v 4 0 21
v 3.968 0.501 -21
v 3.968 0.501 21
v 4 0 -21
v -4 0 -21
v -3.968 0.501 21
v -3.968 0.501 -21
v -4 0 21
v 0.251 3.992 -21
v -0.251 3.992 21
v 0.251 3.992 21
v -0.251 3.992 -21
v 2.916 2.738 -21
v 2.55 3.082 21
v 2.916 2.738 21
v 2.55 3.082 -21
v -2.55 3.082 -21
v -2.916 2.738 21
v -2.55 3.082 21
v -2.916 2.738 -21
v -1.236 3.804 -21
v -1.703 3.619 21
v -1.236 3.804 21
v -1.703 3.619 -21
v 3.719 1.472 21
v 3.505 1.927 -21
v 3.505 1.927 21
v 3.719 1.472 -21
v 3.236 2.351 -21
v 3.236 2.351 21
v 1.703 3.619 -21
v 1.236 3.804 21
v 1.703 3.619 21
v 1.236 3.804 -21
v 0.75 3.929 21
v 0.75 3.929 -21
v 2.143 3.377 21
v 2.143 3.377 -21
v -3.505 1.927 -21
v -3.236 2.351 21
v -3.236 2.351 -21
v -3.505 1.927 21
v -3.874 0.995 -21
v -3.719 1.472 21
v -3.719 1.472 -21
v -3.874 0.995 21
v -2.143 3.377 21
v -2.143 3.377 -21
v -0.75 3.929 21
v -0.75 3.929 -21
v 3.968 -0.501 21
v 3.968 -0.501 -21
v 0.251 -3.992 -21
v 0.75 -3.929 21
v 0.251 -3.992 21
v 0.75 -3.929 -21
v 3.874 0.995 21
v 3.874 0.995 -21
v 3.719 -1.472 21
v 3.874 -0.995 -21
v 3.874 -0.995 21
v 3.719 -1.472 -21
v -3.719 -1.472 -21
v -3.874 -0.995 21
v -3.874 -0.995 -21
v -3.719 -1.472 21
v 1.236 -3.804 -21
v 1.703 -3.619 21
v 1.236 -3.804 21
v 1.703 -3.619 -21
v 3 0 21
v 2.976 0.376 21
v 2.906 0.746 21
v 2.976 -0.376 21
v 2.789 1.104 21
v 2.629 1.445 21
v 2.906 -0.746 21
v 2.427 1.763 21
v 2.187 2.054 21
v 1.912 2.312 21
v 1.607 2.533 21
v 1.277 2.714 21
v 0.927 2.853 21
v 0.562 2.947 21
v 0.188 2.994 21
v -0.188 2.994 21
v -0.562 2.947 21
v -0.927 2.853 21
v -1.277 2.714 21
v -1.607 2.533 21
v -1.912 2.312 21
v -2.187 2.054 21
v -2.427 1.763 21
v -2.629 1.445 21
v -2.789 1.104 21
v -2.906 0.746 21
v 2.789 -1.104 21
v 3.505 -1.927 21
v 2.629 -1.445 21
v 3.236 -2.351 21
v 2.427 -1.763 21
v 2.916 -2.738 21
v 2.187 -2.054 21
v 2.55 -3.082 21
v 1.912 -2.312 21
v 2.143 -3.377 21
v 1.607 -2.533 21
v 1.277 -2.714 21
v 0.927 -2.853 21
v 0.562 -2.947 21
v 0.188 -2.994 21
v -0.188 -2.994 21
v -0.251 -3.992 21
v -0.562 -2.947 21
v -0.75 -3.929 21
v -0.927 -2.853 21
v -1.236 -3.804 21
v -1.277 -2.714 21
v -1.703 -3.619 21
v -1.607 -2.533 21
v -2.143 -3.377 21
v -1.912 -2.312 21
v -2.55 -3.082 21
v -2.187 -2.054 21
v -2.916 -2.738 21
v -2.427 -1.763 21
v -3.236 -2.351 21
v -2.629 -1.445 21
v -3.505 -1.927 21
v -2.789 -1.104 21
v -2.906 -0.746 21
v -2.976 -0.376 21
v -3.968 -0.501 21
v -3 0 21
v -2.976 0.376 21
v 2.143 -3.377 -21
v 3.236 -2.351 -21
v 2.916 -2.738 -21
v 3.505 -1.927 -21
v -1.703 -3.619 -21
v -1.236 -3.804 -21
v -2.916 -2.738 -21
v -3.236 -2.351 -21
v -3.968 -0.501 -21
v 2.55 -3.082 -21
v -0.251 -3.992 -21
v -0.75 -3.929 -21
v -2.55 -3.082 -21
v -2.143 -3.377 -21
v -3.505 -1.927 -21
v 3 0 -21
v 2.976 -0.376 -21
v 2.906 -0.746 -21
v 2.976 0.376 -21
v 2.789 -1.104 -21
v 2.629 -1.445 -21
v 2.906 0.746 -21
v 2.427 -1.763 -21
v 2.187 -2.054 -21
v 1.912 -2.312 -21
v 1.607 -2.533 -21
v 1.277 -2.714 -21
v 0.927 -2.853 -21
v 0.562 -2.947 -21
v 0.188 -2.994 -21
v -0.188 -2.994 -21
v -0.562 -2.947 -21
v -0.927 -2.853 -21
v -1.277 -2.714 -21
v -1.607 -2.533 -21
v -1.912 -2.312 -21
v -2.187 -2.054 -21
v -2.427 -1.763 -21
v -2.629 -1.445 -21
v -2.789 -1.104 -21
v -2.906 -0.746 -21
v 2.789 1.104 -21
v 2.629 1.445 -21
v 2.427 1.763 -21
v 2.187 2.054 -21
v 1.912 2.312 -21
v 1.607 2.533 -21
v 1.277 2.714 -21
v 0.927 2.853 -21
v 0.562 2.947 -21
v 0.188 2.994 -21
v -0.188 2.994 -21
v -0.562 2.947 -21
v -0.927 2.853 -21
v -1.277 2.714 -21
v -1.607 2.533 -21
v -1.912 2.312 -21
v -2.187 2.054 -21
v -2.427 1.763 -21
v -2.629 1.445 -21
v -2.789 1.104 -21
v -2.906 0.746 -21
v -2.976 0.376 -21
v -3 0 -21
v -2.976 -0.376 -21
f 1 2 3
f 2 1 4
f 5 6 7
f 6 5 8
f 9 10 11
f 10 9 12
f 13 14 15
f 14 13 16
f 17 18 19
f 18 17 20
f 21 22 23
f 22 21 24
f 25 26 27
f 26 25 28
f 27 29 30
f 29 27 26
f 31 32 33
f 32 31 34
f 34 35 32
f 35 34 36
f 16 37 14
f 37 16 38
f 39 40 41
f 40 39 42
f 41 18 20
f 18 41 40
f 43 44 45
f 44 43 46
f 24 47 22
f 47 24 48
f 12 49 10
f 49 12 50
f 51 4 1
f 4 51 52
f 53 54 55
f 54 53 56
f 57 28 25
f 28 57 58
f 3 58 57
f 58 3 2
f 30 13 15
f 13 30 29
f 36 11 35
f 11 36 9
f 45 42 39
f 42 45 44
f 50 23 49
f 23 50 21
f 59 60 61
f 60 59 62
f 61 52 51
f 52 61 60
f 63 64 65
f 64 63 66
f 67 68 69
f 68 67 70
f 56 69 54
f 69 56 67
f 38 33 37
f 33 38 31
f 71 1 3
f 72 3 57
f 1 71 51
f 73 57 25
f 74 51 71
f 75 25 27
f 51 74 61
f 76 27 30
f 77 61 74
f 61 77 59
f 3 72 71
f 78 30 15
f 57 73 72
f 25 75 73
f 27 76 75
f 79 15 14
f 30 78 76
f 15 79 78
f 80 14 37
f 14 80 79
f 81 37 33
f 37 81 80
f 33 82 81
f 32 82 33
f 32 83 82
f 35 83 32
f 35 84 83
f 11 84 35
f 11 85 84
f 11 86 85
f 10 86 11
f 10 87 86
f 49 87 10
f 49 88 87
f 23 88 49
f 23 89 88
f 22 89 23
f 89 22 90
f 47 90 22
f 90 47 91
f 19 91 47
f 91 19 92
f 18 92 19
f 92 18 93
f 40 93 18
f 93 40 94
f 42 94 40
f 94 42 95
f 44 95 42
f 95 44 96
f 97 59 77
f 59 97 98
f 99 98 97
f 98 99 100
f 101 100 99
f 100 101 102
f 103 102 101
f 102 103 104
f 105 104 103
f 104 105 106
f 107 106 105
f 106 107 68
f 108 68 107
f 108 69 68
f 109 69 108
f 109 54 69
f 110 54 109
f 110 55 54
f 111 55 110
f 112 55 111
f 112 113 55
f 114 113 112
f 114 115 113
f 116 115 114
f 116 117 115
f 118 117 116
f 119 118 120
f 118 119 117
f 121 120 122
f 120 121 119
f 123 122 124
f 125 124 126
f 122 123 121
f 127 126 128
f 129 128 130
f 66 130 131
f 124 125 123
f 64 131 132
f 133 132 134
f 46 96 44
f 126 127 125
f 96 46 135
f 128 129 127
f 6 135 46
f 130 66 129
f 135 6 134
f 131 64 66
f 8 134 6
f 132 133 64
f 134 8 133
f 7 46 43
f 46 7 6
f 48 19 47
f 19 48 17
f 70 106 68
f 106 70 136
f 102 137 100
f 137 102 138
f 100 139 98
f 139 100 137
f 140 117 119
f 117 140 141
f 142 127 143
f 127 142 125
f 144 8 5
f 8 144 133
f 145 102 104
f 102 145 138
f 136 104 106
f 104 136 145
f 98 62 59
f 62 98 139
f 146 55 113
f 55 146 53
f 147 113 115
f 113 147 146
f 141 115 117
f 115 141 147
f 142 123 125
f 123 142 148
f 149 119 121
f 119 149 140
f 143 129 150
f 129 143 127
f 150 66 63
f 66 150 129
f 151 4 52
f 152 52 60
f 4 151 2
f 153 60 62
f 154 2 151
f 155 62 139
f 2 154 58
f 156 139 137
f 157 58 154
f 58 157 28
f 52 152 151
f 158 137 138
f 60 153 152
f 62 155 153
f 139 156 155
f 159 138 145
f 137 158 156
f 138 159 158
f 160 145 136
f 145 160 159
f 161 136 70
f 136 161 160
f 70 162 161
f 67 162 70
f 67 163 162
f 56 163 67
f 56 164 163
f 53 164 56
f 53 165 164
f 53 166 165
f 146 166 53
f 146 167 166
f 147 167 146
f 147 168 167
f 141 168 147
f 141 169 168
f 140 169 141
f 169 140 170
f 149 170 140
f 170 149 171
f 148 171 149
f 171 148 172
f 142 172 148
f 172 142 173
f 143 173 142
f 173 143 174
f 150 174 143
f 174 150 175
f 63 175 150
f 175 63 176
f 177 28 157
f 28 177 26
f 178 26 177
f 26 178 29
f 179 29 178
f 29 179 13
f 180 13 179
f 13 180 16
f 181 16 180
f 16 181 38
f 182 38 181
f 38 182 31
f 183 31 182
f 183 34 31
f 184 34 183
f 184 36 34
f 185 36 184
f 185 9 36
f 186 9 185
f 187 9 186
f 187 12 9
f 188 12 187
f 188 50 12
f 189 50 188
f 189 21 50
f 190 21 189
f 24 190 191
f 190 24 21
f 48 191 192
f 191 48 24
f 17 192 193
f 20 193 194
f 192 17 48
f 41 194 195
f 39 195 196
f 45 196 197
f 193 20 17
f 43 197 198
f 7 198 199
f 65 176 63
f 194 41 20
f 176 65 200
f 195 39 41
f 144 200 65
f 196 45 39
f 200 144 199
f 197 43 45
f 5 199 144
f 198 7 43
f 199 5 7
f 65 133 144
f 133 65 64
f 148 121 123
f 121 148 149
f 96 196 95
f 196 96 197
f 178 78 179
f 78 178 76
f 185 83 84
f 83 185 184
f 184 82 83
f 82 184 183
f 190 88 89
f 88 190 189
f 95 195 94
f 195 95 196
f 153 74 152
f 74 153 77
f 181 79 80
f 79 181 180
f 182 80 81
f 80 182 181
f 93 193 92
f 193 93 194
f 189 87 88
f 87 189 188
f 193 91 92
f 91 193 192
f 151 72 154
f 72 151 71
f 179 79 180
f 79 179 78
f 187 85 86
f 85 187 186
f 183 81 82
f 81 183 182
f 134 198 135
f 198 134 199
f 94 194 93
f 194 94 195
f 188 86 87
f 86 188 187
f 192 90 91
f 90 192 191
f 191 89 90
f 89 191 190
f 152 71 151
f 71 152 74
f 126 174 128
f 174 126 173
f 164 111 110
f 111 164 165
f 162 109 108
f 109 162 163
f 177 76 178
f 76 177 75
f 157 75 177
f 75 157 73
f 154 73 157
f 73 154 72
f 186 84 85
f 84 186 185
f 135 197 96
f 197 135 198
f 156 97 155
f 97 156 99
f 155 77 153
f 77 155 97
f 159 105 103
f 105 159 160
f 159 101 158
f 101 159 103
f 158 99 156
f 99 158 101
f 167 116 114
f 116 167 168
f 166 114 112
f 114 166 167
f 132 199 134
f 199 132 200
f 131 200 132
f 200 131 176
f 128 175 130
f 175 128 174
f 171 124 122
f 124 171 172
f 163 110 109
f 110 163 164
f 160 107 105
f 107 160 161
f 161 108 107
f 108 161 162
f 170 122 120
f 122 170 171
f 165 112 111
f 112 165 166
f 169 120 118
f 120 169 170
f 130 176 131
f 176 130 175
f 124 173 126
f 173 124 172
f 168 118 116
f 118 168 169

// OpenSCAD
$fn = 50;


difference() {
	union() {
		translate(v = [0, 0, -21.0000000000]) {
			cylinder(h = 42, r = 4.0000000000);
		}
	}
	union() {
		translate(v = [0, 0, -100.0000000000]) {
			cylinder(h = 200, r = 3.0000000000);
		}
	}
}
